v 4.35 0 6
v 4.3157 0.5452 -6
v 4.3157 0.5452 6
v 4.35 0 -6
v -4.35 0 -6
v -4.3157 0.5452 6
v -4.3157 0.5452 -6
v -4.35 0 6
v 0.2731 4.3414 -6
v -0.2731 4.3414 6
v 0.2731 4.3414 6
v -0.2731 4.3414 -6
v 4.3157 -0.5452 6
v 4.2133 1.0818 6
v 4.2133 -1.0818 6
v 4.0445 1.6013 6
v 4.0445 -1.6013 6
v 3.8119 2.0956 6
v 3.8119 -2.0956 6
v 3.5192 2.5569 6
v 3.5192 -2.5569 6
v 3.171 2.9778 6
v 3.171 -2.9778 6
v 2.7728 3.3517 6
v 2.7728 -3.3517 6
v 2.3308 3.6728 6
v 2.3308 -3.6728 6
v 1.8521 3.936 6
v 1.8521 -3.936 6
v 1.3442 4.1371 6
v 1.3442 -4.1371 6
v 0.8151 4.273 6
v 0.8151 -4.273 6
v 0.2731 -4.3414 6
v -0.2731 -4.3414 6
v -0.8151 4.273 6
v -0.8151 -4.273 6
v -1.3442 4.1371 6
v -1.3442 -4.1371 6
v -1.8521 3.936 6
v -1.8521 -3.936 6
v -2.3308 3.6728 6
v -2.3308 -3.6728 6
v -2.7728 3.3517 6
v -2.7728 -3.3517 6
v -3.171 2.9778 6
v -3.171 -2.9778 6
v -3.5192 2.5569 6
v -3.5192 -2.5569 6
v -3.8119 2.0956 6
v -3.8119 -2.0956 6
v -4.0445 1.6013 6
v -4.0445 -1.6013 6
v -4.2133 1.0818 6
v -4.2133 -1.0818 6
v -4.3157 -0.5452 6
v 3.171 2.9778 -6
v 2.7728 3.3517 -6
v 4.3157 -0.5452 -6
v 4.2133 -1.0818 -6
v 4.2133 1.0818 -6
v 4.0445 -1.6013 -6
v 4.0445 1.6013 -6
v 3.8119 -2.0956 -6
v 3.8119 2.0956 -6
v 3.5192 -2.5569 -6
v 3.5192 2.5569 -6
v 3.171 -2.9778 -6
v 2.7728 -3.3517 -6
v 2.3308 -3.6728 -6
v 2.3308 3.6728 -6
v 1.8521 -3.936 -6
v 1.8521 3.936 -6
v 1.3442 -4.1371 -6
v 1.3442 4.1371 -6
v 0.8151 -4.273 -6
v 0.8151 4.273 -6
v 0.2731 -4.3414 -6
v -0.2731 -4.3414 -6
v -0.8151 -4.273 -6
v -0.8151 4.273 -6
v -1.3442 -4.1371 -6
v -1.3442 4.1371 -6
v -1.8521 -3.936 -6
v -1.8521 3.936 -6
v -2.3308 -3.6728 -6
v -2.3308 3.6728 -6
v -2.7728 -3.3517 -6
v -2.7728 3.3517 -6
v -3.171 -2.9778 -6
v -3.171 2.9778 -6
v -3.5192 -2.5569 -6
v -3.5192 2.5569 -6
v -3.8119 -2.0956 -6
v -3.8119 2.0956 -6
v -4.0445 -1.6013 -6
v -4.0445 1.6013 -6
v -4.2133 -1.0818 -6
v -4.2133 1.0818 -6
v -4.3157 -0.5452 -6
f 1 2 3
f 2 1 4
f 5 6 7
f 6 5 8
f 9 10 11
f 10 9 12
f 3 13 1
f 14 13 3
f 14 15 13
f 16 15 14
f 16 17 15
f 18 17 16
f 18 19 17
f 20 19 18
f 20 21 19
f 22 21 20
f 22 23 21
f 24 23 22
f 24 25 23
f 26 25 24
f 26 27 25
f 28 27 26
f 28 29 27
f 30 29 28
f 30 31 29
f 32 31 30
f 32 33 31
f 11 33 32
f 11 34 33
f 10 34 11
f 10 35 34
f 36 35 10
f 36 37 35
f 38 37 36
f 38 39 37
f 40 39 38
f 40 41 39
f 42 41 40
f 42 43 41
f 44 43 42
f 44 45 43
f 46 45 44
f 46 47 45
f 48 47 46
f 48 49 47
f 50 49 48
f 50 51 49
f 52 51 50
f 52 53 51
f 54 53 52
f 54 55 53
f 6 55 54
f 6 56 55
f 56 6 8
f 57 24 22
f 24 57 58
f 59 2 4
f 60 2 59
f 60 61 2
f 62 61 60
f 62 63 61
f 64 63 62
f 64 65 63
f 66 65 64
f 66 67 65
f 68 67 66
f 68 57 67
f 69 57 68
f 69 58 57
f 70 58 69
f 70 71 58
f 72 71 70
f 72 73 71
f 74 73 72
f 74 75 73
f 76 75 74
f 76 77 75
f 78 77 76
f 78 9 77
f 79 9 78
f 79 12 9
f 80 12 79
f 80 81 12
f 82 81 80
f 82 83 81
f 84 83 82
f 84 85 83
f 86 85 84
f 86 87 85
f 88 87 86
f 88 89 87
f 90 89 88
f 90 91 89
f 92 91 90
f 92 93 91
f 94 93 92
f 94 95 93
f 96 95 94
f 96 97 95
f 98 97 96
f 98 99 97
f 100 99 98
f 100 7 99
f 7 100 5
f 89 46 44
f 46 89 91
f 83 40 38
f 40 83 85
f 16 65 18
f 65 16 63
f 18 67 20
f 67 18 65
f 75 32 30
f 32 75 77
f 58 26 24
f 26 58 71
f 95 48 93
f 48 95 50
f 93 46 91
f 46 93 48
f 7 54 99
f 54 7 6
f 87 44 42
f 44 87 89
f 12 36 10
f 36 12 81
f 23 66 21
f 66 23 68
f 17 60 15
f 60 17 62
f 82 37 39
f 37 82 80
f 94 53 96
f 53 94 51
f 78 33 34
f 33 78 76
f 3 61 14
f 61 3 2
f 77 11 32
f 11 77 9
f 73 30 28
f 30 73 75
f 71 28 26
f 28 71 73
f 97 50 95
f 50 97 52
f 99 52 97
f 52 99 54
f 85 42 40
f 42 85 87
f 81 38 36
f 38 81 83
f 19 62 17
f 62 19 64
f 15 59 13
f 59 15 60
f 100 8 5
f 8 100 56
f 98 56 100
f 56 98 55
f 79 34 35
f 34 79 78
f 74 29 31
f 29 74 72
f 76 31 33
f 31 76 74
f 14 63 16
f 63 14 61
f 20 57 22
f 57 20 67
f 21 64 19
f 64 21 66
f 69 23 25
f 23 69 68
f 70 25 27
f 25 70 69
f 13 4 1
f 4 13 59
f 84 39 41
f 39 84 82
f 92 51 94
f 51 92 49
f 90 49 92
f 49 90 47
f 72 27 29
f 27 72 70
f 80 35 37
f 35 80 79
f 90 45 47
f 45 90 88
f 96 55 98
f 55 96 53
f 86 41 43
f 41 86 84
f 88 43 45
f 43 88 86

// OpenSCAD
$fn = 50;


difference() {
	union() {
		translate(v = [0, 0, -6.0000000000]) {
			cylinder(h = 12, r = 4.3500000000);
		}
	}
	union() {
		translate(v = [0, 0, -100.0000000000]) {
			cylinder(h = 200, r = 0);
		}
	}
}
